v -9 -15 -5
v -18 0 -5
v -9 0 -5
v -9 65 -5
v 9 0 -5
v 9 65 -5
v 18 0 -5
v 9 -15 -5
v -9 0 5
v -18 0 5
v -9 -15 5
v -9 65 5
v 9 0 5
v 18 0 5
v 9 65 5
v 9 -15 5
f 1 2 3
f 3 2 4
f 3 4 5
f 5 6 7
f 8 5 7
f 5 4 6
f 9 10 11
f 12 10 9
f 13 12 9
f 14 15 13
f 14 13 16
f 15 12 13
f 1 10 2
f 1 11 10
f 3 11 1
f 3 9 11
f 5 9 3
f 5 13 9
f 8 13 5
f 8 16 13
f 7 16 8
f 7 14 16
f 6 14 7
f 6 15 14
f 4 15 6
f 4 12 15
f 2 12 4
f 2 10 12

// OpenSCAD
width = 18;
height = 65;
depth = 10;


module base() {
  polygon(points=[[0,0], [width/2,0], [width/2,-15],[width,0], [width/2, height], [0, height]]);
  mirror([1, 0, 0]) {
    polygon(points=[[0,0], [width/2,0], [width/2,-15],[width,0], [width/2, height], [0, height]]);
  }
}

linear_extrude(height=depth, center=true, convexity=10, twist=0) {
  base();
}
